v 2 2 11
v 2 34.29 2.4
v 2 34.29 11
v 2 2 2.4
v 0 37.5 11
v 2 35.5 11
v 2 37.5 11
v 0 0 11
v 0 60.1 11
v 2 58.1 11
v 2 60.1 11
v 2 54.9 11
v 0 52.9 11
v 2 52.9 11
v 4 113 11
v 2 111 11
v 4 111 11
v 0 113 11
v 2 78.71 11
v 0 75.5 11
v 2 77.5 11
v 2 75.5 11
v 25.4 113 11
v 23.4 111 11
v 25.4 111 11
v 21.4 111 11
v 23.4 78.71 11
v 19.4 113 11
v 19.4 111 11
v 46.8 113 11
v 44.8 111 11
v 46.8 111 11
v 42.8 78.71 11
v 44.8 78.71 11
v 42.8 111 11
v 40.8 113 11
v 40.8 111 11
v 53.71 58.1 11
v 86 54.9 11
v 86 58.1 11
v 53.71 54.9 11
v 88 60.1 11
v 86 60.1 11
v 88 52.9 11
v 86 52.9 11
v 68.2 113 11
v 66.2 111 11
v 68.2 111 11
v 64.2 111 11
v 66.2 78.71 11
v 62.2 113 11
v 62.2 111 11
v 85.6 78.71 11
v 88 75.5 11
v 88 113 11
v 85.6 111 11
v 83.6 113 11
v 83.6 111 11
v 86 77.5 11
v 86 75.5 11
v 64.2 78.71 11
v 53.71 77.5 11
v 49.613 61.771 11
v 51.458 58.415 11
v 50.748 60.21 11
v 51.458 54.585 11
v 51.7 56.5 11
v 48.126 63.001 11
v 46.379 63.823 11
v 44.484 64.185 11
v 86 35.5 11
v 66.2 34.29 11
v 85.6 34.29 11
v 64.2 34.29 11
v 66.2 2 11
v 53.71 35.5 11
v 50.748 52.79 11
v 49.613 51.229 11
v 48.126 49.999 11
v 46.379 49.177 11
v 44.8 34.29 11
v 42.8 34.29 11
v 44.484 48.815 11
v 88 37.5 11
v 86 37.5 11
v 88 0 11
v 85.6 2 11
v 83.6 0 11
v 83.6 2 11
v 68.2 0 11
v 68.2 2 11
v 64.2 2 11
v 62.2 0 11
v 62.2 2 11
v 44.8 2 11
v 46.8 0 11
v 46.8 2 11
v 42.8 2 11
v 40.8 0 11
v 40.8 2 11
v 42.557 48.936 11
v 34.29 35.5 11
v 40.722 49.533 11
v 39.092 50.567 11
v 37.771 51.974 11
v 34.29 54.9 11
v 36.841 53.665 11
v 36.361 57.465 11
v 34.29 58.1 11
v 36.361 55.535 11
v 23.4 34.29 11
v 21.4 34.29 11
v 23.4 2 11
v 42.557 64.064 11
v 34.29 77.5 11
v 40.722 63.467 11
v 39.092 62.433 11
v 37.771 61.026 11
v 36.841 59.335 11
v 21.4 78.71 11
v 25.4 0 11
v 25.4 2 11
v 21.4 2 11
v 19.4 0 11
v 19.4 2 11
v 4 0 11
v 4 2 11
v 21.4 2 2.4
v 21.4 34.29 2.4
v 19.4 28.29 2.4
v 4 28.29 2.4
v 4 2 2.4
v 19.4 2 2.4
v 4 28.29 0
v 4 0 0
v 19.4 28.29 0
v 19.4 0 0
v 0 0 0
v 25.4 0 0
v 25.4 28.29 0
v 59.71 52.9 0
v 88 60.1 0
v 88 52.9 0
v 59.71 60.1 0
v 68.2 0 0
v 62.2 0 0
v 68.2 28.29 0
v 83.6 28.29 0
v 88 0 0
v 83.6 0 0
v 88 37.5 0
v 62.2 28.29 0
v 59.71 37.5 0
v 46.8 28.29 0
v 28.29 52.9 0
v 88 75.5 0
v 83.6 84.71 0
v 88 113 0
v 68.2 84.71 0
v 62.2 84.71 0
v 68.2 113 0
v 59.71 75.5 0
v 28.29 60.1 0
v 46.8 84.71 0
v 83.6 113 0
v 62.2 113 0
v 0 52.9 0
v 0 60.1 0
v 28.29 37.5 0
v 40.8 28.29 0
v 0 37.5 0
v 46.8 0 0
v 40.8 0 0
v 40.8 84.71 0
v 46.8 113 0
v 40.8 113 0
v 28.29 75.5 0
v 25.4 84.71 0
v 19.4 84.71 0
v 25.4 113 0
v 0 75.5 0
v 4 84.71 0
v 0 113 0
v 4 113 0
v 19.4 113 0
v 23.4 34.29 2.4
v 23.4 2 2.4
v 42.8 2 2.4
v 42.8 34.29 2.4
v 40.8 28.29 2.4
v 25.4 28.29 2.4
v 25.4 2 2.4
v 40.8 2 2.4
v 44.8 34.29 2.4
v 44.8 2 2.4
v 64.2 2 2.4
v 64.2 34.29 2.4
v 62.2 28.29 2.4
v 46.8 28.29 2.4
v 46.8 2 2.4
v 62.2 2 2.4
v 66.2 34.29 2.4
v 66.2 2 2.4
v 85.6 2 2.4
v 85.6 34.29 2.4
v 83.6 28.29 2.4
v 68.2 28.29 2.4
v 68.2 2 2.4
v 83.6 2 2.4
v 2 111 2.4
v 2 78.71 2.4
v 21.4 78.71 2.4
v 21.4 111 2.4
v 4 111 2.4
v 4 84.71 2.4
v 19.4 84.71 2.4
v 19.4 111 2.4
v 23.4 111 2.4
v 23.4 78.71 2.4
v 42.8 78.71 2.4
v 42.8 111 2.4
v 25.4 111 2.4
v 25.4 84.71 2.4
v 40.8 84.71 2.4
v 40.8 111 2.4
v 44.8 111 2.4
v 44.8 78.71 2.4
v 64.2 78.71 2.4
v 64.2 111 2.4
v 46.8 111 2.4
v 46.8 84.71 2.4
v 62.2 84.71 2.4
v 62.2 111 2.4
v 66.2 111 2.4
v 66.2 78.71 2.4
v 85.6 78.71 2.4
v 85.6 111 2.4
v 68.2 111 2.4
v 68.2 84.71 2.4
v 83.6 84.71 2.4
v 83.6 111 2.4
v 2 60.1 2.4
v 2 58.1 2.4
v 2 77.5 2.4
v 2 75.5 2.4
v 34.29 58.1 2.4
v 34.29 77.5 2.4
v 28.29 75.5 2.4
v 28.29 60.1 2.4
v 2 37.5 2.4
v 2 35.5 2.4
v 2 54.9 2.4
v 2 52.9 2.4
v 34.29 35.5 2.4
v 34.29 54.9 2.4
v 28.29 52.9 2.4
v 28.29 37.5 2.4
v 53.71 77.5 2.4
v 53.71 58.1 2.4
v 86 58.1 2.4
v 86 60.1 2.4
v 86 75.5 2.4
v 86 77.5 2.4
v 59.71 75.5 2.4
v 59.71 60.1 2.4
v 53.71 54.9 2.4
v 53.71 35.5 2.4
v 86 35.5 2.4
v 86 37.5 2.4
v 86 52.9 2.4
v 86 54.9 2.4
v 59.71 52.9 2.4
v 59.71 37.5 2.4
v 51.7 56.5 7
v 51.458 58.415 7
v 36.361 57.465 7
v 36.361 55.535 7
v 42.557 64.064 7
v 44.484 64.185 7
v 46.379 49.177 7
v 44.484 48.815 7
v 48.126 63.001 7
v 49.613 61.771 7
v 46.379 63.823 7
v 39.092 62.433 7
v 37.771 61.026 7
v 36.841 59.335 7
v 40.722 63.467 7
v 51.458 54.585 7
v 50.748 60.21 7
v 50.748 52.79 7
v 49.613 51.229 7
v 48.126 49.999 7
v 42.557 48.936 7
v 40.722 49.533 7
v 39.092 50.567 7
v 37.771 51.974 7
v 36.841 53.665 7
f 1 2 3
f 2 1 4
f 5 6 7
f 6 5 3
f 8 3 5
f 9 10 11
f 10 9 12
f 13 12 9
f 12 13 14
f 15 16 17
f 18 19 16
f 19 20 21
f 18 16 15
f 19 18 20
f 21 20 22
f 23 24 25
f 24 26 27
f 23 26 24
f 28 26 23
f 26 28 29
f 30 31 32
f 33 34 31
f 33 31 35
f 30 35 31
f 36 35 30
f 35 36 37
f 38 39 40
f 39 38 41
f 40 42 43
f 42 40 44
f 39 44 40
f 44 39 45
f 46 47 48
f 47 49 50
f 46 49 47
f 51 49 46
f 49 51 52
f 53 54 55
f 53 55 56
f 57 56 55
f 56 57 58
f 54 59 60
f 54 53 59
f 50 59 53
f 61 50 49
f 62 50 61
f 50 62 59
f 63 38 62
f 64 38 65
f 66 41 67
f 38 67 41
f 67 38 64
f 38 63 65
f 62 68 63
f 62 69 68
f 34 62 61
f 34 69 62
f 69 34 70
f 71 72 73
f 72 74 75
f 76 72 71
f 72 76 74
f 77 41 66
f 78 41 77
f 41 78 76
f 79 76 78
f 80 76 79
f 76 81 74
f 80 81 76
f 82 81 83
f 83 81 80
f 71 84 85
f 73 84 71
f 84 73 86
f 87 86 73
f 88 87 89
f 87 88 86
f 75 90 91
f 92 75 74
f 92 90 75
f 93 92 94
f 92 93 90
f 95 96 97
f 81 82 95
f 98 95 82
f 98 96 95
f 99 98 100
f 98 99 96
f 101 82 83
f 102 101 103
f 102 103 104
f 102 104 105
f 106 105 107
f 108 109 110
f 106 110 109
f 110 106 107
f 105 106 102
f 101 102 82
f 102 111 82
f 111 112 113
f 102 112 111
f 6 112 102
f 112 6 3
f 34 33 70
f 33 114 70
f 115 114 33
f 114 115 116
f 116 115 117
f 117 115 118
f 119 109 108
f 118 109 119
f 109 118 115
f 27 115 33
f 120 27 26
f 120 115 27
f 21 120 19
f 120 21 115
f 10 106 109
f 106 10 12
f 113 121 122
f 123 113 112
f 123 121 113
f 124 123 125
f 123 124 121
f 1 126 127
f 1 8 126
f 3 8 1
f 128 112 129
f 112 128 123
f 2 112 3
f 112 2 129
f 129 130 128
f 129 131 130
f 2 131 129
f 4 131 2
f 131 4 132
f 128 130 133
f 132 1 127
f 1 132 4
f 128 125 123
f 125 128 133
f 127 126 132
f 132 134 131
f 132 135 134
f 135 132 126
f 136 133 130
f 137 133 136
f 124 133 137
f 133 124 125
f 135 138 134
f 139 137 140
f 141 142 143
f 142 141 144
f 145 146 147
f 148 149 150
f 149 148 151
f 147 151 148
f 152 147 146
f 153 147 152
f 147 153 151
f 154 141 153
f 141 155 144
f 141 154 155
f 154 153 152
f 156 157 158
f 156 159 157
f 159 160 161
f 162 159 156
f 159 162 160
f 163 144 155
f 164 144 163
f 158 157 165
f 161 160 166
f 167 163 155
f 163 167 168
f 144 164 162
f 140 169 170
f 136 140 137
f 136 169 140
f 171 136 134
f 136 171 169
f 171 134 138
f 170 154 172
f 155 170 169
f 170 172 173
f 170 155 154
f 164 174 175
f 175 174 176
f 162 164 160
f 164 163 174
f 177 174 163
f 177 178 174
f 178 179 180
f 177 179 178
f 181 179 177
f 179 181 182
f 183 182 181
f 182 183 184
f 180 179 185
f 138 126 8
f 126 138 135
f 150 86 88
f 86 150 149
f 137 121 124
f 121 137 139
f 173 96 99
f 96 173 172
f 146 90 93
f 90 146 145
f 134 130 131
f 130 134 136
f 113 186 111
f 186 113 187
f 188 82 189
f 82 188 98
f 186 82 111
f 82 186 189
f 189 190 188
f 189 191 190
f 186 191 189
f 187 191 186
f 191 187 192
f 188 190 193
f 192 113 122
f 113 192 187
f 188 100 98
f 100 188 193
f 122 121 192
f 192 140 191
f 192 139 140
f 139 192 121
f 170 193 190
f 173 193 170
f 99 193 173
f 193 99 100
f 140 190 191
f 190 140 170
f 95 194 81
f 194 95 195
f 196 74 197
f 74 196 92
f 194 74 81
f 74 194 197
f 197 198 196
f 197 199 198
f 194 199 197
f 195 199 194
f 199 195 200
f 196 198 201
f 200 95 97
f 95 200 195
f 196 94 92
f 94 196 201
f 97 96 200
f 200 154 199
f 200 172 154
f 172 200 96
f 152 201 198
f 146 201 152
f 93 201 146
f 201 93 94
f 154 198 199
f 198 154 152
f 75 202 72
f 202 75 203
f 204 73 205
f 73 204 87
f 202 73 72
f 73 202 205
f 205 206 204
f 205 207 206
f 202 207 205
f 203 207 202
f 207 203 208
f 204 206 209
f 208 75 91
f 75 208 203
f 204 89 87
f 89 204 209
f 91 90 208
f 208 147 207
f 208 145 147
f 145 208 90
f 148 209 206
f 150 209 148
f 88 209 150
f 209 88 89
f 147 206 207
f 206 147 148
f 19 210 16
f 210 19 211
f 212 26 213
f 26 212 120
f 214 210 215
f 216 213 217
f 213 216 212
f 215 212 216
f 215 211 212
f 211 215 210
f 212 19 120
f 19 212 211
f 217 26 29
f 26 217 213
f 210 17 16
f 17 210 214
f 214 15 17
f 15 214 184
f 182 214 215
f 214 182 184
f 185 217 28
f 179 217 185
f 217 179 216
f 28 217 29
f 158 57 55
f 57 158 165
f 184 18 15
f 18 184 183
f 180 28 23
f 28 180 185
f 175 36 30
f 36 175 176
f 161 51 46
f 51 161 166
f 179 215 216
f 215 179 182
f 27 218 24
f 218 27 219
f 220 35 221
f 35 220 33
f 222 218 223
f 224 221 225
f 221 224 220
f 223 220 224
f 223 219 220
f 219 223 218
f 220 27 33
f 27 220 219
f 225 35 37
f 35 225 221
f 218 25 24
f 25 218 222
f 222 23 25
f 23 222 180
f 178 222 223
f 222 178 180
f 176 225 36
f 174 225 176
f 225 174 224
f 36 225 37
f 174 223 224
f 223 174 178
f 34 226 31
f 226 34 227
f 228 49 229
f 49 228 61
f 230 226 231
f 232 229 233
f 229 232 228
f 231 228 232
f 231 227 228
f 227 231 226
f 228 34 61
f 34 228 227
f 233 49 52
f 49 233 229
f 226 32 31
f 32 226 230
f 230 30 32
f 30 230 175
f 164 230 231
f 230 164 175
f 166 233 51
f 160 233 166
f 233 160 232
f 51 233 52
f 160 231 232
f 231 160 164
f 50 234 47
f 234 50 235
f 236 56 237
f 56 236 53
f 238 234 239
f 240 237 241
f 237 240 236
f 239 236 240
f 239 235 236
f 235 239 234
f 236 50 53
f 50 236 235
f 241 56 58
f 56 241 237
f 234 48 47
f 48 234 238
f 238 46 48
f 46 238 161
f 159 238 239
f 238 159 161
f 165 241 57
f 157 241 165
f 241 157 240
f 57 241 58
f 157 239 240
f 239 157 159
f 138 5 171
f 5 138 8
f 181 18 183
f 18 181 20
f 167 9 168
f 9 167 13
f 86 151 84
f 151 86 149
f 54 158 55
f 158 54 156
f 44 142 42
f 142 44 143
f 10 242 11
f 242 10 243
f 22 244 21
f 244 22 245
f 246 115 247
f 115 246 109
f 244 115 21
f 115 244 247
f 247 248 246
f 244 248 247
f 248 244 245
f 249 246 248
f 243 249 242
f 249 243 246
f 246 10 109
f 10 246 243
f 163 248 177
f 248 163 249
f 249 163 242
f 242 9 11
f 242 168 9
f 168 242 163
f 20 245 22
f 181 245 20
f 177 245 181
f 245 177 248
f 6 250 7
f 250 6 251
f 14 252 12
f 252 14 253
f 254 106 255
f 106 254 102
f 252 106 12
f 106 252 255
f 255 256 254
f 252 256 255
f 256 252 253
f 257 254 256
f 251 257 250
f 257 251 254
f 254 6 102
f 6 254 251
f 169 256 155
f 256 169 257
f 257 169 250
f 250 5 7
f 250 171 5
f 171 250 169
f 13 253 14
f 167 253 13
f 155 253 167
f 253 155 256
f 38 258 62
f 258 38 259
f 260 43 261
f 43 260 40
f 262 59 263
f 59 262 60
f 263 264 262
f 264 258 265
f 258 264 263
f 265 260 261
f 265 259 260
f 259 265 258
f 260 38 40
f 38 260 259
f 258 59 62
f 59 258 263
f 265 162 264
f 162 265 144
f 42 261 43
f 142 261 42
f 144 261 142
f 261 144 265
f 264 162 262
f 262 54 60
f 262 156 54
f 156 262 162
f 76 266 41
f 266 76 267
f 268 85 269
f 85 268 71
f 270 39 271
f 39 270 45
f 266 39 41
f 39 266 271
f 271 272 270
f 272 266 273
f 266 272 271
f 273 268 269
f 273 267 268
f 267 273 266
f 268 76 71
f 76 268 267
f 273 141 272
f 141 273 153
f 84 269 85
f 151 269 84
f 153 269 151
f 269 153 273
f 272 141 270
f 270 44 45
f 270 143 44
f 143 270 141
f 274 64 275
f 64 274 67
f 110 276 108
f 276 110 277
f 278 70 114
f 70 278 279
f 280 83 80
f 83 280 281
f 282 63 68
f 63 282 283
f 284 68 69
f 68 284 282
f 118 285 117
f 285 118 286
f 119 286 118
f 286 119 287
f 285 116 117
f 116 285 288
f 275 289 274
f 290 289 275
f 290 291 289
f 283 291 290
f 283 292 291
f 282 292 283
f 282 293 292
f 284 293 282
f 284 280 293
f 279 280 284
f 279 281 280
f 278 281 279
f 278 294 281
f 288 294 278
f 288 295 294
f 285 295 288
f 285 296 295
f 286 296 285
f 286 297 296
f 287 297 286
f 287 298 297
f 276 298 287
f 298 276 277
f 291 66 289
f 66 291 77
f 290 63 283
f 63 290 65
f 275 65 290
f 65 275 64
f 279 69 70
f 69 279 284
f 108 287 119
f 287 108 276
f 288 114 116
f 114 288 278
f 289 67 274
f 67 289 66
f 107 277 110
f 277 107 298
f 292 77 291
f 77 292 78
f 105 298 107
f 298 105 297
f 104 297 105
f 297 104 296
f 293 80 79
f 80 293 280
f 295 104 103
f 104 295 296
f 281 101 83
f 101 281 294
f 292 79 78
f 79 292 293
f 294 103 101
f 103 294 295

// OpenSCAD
length = 88;
width = 113;
height = 11;

//Based on magnet size:
magnetBaseInnerDiameter = 15.4;
magnetHeight = 4.0;

//	5 bed tokens 2.19 thick 7.87 wi 25.35 long 
//	prestige token 2 15.18 diameter 2.19 thick 
//	money tokens 2 2.05 thick 16.7 diameter

//    beds 10 piles
//	each pile 4 tokens
//	2.05 thick total 8.1 thick  18.9wid length 31.79    

bedTokenWidth = 31.79 + .5;
bedTokenLength = 18.9 + .5;
bedTokenHeight = 8.1 + .5;

spaceBetweenCircles = 2;
wallThickness = spaceBetweenCircles;

squareLipWidthRemainder = 4;
squareLipLengthRemainder = 4;

difference(){
    cube([length, width, height]);


//----------------------------------
LeftBedToken();
translate([bedTokenLength + wallThickness, 0, 0])
    LeftBedToken();
translate([2 * (bedTokenLength + wallThickness), 0, 0])
    LeftBedToken();
translate([3 * (bedTokenLength + wallThickness), 0, 0])
    LeftBedToken();
   
            
//---------------------------------------------------------------------

    RightBedToken();
translate([bedTokenLength + wallThickness, 0, 0])
    RightBedToken();
translate([2 * (bedTokenLength + wallThickness), 0, 0])
    RightBedToken();
translate([3 * (bedTokenLength + wallThickness), 0, 0])
    RightBedToken();        
// -----------------------------
            
translate(
        [
            wallThickness,
            3 * width/5 - (bedTokenLength/2),
            height - bedTokenHeight
        ])
        cube([bedTokenWidth,bedTokenLength, bedTokenHeight]);
    translate([
        0,
        3 * width/5 - (bedTokenLength/2 - squareLipWidthRemainder/2),
        0])
        cube([
            bedTokenWidth - squareLipLengthRemainder,
            bedTokenLength - squareLipWidthRemainder,
            height]);
   
    translate(
        [
            wallThickness,
            2 * width/5 - (bedTokenLength/2),
            height - bedTokenHeight
        ])
        cube([bedTokenWidth,bedTokenLength, bedTokenHeight]);
    translate([
        0,
        2 * width/5 - (bedTokenLength/2 - squareLipWidthRemainder/2),
        0])
        cube([
            bedTokenWidth - squareLipLengthRemainder,
            bedTokenLength - squareLipWidthRemainder,
            height]);


//------------------------------


    translate(
        [
            length - (wallThickness + bedTokenWidth),
            3 * width/5 - (bedTokenLength/2),
            height - bedTokenHeight
        ])
        cube([bedTokenWidth,bedTokenLength, bedTokenHeight]);
    translate([
        length - (bedTokenWidth - squareLipLengthRemainder),
        3 * width/5 - (bedTokenLength/2 - squareLipWidthRemainder/2),
        0])
        cube([
            bedTokenWidth - squareLipLengthRemainder,
            bedTokenLength - squareLipWidthRemainder,
            height]);
   
    translate(
        [
            length - (wallThickness + bedTokenWidth),
            2 * width/5 - (bedTokenLength/2),
            height - bedTokenHeight
        ])
        cube([bedTokenWidth,bedTokenLength, bedTokenHeight]);
    translate([
        length - (bedTokenWidth - squareLipLengthRemainder),
        2 * width/5 - (bedTokenLength/2 - squareLipWidthRemainder/2),
        0])
        cube([
            bedTokenWidth - squareLipLengthRemainder,
            bedTokenLength - squareLipWidthRemainder,
            height]);

//----------------------------------------
   
    translate([length/2, width/2, height - magnetHeight])
        cylinder(magnetHeight, d=magnetBaseInnerDiameter);
        

}


module LeftBedToken()
{
    translate(
        [
            wallThickness,
            wallThickness,
            height - bedTokenHeight
        ])
        cube([bedTokenLength,bedTokenWidth, bedTokenHeight]);
    translate([
        wallThickness + squareLipWidthRemainder/2,
        0,
        0])
        cube([
            bedTokenLength - squareLipWidthRemainder,
            bedTokenWidth - squareLipLengthRemainder,
            height]);
}

module RightBedToken()
{
    translate(
        [
            wallThickness,
            width - (wallThickness + bedTokenWidth),
            height - bedTokenHeight
        ])
        cube([bedTokenLength,bedTokenWidth, bedTokenHeight]);
    translate([
        wallThickness + squareLipWidthRemainder/2,
        width - (bedTokenWidth - squareLipLengthRemainder),
        0])
        cube([
            bedTokenLength - squareLipWidthRemainder,
            bedTokenWidth - squareLipLengthRemainder,
            height]);
}
